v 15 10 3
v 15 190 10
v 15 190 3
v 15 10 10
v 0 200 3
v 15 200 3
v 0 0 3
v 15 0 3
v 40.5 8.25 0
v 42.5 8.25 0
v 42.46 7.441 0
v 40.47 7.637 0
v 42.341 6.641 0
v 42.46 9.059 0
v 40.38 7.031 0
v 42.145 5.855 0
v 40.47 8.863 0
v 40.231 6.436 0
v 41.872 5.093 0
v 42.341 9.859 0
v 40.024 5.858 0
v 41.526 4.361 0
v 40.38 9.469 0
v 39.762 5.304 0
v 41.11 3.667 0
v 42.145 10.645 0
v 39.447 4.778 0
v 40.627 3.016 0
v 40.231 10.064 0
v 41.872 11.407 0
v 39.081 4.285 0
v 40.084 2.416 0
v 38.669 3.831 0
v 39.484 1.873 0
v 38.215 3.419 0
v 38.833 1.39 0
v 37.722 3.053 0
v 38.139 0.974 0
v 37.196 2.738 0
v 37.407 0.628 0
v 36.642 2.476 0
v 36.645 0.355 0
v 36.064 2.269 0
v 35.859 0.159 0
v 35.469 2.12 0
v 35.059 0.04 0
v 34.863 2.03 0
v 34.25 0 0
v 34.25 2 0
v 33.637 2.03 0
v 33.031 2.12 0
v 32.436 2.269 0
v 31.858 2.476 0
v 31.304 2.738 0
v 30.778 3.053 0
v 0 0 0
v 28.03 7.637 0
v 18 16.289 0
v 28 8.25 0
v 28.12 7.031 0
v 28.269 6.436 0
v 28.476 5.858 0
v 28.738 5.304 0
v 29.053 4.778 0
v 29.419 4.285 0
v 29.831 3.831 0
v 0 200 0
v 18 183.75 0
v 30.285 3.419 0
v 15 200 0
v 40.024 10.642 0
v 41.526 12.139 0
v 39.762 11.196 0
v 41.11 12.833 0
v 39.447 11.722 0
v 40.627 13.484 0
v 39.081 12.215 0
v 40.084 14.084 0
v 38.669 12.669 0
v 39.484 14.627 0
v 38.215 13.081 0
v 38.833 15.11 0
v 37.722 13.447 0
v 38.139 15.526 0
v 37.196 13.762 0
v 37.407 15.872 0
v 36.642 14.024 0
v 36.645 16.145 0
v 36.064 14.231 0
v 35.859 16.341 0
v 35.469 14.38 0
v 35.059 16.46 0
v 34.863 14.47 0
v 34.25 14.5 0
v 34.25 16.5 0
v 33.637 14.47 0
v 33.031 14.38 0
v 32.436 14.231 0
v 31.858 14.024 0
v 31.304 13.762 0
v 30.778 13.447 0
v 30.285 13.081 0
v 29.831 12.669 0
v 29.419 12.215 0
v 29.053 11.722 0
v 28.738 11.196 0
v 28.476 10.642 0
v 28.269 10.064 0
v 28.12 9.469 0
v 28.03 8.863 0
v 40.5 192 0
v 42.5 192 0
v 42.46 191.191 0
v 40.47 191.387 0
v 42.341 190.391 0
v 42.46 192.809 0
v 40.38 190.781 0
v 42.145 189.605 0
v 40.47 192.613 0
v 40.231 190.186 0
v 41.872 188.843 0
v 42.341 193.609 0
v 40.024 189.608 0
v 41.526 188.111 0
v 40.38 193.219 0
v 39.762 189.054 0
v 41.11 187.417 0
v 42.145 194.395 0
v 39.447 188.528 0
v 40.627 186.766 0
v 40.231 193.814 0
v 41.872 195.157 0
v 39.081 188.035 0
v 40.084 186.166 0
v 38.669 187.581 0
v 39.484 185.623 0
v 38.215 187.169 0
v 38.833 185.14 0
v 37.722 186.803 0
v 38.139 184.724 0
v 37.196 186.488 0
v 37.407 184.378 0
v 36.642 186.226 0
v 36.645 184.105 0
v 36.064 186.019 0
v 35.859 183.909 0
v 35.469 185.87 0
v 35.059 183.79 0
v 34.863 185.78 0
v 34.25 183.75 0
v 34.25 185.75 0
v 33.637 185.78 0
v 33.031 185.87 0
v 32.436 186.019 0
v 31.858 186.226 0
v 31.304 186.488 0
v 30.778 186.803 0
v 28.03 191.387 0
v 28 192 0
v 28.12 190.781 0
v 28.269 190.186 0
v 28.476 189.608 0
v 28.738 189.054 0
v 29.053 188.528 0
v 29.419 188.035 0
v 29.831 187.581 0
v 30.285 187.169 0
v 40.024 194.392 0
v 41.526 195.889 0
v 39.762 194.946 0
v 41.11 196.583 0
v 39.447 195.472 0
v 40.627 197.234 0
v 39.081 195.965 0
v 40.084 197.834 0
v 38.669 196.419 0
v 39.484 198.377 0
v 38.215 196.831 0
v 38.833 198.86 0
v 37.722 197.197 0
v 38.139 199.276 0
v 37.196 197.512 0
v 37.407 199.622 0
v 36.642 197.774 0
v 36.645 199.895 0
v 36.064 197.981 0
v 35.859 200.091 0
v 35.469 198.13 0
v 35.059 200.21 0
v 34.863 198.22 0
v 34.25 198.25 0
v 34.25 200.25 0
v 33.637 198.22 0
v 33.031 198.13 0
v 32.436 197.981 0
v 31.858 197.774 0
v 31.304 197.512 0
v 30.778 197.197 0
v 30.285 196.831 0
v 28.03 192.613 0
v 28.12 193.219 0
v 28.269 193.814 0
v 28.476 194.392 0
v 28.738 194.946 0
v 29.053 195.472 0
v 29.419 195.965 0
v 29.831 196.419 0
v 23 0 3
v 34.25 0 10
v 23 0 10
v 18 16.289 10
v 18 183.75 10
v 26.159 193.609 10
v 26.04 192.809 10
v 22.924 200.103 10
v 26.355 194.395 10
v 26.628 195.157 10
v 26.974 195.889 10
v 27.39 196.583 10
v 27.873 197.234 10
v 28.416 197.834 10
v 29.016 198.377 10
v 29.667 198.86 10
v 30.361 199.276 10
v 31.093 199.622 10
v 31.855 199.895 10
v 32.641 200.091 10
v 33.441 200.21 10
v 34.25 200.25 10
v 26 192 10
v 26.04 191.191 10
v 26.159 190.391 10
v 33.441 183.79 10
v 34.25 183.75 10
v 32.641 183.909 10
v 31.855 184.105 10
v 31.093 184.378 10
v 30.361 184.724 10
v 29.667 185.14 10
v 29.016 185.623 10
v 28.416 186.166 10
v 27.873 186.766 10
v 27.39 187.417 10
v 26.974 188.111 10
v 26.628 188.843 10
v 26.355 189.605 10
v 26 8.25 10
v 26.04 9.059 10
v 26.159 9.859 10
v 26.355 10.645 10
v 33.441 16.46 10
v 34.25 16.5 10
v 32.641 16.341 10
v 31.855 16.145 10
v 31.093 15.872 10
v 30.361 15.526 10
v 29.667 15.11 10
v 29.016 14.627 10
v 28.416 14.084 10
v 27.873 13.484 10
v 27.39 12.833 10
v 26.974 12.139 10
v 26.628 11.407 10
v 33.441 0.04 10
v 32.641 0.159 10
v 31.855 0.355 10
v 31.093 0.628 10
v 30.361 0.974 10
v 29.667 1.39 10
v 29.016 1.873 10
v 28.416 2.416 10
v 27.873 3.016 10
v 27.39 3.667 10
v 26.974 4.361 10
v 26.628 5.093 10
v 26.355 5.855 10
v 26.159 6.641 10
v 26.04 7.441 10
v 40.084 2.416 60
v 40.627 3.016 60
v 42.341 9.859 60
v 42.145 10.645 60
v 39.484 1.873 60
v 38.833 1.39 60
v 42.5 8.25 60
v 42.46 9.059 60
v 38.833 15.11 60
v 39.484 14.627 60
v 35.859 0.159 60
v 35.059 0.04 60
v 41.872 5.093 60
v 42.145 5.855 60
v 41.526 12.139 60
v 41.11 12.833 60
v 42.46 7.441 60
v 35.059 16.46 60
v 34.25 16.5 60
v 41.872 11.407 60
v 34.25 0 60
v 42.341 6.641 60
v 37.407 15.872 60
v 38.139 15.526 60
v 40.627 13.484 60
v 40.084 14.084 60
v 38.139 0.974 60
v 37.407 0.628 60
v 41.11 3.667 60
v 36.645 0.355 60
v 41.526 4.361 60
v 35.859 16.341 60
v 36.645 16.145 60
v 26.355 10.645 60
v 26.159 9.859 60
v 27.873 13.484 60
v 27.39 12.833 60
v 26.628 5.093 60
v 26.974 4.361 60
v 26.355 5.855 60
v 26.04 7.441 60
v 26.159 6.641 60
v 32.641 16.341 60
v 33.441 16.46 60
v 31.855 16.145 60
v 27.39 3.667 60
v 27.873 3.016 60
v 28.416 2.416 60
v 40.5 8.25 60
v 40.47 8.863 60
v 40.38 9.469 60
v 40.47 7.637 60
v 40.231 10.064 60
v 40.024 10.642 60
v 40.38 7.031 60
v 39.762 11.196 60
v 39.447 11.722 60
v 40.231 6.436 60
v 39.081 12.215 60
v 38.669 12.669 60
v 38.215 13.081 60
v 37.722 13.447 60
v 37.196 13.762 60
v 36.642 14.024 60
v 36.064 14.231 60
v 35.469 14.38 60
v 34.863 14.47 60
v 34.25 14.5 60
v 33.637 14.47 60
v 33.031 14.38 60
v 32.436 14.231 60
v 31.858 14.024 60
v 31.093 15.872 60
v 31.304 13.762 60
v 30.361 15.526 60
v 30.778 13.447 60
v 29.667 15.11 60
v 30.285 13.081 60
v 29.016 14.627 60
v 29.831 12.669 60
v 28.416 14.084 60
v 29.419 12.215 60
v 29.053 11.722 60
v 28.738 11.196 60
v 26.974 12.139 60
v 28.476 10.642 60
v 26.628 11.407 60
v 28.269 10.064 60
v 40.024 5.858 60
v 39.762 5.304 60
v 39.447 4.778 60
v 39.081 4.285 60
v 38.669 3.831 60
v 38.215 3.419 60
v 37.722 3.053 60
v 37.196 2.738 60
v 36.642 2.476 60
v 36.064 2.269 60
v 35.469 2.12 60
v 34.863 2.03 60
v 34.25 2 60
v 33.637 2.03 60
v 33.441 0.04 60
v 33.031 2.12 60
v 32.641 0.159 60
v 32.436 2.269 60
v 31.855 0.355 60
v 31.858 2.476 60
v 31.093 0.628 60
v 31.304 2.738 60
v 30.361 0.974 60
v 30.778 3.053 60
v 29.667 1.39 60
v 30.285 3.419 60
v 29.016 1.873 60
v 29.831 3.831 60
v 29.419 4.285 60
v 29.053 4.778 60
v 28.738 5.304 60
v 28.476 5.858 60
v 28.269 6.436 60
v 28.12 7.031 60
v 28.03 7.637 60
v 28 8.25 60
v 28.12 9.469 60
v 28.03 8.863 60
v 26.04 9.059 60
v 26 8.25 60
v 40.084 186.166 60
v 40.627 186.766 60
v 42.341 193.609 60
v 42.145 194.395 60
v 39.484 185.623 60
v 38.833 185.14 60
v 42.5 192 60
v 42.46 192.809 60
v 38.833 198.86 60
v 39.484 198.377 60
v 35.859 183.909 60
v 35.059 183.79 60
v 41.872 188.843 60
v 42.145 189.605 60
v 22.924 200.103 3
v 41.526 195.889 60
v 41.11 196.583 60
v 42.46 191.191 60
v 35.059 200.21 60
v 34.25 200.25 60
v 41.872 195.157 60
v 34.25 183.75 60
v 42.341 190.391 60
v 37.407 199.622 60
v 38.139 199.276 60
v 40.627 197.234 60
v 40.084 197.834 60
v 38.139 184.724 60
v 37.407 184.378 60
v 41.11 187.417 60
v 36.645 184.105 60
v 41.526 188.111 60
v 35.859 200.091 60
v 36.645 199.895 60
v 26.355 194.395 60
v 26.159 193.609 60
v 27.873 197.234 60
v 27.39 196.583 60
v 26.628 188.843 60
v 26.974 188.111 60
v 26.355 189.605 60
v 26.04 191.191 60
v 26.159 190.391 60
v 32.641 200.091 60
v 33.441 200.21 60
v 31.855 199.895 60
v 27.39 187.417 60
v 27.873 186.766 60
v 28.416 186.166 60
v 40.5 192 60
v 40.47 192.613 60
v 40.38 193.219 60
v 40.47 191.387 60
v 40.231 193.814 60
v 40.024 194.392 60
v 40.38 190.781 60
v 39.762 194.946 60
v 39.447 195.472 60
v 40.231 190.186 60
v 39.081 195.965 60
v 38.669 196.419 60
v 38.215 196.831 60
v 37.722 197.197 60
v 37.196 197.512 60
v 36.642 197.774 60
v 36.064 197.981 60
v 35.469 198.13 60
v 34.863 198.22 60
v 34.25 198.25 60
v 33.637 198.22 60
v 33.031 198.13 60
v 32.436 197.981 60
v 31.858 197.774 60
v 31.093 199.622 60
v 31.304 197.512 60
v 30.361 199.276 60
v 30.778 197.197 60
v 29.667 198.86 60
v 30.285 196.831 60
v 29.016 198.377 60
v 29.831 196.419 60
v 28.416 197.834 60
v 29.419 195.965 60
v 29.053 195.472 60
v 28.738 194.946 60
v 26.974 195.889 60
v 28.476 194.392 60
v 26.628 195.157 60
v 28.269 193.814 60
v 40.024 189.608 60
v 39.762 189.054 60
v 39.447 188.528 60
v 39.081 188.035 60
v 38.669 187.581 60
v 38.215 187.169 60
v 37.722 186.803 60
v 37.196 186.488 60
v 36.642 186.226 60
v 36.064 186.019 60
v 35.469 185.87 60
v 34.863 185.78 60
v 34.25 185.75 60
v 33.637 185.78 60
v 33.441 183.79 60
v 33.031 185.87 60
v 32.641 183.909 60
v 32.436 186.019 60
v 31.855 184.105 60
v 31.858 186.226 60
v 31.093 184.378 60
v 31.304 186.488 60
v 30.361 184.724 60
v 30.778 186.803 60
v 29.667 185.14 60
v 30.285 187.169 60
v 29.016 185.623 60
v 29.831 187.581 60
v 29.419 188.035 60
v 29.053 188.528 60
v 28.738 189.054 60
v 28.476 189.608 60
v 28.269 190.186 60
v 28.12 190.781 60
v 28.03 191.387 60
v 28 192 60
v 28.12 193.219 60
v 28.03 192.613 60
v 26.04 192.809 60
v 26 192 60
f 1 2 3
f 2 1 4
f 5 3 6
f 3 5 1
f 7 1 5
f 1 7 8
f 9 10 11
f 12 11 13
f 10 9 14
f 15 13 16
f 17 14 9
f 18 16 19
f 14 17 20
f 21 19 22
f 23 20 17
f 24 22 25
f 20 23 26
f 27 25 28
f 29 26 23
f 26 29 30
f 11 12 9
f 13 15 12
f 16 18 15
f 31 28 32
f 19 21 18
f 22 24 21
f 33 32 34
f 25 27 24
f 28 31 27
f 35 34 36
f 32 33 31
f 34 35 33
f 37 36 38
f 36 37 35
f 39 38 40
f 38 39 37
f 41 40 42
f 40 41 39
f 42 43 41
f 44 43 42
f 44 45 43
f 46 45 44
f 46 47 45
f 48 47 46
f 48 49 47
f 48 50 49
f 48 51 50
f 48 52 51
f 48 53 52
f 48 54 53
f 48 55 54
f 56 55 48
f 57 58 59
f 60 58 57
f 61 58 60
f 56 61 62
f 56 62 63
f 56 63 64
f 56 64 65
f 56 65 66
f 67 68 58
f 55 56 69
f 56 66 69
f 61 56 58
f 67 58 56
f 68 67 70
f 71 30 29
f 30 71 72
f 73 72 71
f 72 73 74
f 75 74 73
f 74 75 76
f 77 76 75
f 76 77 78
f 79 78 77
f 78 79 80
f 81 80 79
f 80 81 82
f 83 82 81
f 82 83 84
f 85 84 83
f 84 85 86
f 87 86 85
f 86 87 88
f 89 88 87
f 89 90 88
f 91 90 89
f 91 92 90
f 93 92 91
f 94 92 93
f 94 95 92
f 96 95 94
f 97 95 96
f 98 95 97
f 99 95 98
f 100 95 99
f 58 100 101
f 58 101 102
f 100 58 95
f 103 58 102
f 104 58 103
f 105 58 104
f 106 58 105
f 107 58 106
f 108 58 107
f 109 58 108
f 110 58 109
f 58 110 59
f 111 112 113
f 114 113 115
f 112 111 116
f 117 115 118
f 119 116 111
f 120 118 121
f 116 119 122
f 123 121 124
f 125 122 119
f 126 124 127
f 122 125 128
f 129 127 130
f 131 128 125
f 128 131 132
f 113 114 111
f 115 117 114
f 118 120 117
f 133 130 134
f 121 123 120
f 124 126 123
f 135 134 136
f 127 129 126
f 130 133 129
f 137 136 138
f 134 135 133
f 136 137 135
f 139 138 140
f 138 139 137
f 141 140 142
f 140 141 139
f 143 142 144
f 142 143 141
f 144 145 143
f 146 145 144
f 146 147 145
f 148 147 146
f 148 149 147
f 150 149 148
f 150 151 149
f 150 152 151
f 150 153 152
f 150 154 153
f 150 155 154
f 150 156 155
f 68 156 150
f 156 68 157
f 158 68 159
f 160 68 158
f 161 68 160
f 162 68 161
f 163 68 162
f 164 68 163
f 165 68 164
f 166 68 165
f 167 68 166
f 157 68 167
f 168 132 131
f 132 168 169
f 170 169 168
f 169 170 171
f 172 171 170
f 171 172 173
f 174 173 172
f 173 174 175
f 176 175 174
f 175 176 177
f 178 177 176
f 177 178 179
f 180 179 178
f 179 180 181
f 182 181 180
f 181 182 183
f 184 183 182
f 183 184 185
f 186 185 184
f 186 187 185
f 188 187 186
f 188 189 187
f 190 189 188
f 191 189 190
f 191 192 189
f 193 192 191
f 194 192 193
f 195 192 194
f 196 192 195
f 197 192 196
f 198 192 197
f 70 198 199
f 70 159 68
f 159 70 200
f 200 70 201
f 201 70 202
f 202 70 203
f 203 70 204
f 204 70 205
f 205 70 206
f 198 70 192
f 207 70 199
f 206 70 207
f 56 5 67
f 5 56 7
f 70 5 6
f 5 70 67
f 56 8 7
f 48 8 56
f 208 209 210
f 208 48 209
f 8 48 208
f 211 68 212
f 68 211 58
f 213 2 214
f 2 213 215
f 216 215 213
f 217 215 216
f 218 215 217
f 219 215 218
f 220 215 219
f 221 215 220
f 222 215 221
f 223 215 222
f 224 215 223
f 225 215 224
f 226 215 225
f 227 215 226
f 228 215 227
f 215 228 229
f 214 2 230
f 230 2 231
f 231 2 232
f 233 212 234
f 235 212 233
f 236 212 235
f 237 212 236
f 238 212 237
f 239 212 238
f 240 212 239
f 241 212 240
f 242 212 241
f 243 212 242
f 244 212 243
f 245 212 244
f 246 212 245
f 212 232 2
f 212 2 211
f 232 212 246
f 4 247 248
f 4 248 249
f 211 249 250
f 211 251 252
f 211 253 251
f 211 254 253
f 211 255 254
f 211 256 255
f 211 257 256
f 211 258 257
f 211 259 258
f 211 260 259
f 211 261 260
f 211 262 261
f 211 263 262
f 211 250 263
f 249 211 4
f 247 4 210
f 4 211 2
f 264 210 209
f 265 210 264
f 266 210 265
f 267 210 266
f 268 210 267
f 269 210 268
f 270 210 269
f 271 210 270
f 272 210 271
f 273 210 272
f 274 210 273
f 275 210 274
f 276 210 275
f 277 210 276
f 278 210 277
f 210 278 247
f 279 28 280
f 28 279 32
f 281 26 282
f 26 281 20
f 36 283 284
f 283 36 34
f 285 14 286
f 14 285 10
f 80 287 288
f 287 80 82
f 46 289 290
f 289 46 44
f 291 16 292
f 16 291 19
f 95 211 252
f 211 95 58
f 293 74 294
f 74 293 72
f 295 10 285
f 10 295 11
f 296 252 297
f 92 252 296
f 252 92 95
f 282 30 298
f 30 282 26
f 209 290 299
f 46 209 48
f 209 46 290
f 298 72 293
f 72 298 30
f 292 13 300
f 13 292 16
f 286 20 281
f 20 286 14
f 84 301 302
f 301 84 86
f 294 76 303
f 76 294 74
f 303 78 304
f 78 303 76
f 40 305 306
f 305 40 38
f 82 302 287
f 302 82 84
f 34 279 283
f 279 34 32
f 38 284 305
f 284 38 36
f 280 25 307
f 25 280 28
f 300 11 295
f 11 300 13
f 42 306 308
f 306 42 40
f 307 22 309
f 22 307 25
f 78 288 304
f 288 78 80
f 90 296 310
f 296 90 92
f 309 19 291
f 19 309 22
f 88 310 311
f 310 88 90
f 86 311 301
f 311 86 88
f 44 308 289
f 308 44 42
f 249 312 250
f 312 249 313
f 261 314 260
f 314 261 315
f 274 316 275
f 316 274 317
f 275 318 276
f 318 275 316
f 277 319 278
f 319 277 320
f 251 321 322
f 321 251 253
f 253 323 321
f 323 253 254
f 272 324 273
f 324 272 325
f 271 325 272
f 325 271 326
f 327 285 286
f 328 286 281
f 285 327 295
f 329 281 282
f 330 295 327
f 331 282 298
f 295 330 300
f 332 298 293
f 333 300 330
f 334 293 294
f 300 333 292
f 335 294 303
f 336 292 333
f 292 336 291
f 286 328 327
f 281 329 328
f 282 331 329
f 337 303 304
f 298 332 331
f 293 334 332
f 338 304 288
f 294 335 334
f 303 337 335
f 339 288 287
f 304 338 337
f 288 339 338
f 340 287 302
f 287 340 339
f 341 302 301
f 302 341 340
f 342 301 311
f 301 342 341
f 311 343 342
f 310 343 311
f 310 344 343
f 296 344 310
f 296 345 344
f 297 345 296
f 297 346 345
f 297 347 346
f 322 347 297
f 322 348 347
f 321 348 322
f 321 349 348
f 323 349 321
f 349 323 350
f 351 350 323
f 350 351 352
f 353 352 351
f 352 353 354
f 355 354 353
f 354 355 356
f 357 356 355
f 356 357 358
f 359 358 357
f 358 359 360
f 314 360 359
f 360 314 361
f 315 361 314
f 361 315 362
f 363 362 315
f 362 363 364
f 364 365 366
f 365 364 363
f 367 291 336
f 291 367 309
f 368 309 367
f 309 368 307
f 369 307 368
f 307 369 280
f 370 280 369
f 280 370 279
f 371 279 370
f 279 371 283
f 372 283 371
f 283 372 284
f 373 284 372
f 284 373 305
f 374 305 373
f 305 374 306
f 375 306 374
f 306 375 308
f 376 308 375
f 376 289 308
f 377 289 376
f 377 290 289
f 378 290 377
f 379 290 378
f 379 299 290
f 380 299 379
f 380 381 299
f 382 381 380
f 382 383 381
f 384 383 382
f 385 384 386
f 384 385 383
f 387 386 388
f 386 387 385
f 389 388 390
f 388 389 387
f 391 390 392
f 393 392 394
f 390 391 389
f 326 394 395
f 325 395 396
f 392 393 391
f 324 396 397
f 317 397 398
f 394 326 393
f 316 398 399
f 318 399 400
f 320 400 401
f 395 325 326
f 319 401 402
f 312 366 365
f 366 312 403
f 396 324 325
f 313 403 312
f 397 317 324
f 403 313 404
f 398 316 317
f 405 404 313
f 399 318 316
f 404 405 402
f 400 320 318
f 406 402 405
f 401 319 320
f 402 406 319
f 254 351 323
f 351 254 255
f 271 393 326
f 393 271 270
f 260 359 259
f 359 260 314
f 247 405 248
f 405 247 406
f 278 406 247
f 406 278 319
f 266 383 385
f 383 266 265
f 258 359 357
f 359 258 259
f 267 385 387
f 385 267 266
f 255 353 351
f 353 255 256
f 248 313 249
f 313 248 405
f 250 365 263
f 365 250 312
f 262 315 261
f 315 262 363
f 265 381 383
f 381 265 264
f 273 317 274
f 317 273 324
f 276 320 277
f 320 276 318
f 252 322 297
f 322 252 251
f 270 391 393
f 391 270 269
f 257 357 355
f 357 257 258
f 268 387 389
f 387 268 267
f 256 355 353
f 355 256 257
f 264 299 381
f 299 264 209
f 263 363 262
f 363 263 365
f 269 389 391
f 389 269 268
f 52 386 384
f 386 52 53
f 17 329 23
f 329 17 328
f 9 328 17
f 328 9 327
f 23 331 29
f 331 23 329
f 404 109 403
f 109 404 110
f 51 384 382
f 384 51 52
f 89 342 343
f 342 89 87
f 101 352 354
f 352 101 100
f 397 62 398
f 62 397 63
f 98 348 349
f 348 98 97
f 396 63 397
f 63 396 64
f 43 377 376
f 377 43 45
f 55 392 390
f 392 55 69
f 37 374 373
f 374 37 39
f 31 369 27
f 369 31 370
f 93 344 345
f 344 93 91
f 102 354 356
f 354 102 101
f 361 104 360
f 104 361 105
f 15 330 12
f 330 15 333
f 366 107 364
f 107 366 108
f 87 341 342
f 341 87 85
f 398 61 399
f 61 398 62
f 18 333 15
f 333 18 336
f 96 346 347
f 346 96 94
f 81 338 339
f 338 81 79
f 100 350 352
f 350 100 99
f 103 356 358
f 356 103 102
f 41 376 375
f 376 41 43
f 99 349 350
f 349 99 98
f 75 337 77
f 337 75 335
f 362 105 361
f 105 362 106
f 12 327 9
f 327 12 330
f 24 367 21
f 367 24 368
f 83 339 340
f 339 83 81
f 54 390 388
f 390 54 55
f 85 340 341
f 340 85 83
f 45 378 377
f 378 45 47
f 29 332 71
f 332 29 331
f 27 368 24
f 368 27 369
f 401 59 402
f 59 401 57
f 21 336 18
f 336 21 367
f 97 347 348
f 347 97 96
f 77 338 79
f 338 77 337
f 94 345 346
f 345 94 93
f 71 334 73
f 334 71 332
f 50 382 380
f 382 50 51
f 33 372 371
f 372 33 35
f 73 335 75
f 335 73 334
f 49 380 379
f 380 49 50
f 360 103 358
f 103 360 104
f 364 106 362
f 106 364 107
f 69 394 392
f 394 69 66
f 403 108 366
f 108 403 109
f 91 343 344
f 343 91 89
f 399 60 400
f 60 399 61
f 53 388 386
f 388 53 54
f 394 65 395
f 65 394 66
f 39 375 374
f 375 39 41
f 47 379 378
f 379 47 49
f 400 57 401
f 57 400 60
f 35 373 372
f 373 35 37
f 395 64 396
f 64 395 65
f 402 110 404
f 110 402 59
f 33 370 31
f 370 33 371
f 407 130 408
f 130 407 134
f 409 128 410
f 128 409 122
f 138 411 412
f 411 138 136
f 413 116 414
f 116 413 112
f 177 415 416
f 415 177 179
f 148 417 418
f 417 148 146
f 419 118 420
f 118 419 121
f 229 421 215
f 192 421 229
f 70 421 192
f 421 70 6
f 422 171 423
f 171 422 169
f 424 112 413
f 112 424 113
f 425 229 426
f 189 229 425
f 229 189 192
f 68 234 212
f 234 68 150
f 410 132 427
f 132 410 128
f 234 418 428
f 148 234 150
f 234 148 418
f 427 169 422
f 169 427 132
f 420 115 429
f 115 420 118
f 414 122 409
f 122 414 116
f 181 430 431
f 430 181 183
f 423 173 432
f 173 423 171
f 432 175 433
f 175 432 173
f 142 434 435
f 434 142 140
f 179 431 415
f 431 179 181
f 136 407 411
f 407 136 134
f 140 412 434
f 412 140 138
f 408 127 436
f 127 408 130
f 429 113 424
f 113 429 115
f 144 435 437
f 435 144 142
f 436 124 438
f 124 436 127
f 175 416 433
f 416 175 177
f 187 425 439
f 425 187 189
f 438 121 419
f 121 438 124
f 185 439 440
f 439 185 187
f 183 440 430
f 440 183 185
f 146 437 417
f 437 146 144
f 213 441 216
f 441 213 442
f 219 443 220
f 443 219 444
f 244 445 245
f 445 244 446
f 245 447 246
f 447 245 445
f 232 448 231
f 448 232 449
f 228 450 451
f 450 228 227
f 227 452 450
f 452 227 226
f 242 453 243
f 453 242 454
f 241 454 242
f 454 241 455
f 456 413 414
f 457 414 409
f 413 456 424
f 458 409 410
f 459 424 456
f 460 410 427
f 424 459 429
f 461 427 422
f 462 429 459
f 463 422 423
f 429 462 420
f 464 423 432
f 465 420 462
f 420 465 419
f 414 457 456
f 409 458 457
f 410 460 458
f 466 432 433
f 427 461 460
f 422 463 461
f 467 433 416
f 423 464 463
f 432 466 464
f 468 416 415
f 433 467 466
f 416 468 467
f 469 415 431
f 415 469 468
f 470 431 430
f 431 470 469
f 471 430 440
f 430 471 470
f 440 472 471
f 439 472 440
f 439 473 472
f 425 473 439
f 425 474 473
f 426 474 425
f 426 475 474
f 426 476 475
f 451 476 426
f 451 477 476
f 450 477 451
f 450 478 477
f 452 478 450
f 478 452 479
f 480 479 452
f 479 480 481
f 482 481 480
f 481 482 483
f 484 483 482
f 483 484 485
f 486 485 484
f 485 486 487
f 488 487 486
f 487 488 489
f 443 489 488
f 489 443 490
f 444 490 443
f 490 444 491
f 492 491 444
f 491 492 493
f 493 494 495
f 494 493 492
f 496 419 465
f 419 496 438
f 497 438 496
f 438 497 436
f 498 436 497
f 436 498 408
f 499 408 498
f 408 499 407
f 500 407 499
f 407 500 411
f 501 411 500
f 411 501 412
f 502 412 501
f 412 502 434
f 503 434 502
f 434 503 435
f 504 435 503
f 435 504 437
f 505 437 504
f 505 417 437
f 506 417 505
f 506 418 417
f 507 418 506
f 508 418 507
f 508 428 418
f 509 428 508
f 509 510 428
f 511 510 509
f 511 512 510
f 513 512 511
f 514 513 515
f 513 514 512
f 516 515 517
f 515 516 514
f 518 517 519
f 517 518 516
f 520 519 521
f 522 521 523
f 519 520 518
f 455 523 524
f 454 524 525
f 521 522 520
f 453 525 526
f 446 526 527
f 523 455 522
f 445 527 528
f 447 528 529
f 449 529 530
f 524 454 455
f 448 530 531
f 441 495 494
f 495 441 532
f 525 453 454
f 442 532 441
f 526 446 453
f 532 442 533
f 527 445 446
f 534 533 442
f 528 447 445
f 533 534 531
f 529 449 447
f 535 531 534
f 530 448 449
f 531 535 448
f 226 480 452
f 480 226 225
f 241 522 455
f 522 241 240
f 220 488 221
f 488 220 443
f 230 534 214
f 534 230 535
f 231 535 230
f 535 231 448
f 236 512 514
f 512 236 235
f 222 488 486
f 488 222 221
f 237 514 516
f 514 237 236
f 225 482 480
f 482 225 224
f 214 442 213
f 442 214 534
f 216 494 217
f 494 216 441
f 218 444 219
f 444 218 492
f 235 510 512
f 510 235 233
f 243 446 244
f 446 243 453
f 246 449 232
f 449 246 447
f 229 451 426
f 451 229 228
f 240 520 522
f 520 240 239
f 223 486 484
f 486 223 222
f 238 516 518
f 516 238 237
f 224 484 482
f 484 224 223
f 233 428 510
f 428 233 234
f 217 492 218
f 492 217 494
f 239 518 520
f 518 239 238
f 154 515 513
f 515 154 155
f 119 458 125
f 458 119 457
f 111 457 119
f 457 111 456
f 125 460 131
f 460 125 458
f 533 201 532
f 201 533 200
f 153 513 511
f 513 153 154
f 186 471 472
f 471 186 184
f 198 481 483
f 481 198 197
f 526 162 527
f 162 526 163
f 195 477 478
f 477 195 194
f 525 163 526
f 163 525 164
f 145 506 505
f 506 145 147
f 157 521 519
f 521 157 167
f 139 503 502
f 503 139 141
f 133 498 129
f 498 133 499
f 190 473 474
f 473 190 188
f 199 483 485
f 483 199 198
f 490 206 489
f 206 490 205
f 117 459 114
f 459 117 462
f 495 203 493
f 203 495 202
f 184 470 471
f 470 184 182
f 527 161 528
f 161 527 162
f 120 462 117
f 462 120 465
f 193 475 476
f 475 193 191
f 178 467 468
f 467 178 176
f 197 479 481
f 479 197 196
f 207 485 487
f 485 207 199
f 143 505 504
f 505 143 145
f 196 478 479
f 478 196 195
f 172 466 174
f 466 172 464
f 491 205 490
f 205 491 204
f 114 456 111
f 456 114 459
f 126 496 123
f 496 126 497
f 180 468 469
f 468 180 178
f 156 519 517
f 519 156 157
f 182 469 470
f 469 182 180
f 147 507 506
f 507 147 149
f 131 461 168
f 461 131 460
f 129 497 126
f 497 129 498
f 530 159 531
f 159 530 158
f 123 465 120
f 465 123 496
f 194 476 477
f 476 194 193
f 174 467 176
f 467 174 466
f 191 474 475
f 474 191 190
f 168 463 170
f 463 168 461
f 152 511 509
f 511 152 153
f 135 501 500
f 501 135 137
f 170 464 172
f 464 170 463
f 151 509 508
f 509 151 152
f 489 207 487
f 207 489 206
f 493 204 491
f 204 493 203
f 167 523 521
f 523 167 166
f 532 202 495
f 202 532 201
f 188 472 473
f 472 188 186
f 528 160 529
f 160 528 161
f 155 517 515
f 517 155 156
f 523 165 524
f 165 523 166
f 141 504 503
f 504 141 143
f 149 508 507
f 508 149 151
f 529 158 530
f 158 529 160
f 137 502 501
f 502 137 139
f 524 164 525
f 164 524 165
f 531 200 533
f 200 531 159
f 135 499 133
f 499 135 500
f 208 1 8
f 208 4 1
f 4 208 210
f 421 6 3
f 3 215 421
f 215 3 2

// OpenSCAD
screw_mount = false; //Set true to add mount points, false for no mount points.
shelf_depth = 200;
shelf_heigth = 57;
support_tube_radius = 6.25;

lip_width = 15;
support_clearance = 10;

$fn= $preview ? 32 : 64;
module support_tube()
{
    difference(){
        union(){
            hull(){
                translate([0, 0, 0])
                    cube([3, support_tube_radius+10, 10], false);
                translate([3+support_tube_radius+support_clearance, support_tube_radius+2, 5])
                    cylinder(10, support_tube_radius+2, support_tube_radius+2, true);
            }
            translate([3+support_tube_radius+support_clearance, support_tube_radius+2, (shelf_heigth+3)/2])
                cylinder(shelf_heigth+3, support_tube_radius+2, support_tube_radius+2, true);
        }
    translate([3+support_tube_radius+support_clearance, support_tube_radius+2, (shelf_heigth+3)/2])
        cylinder(shelf_heigth+3, support_tube_radius, support_tube_radius, true);
    }
}

module mounting_ear()
{
    difference(){   
        hull(){
            cube([3, 10, 3], false);
            translate([5, 5, 1.5]) cylinder(3, 5, 5, true);
        }
        translate([5, 5, 1.5]) cylinder(3, 2, 2, true);
    }
}
difference(){
    union(){  
        union(){
            cube([lip_width, shelf_depth, 3], false);
            translate([lip_width, 0, 0]) cube([3, shelf_depth, 10], false);
        }
        translate([lip_width, 0, 0]) support_tube();
        translate([lip_width, shelf_depth-support_tube_radius-10, 0]) support_tube();

        if(screw_mount){
            translate([lip_width+3, 16, 0]) mounting_ear();
            translate([lip_width+3, shelf_depth-10-16, 0]) mounting_ear();
        }
    }
    //ramp cuts
    translate([lip_width,0,3])
        linear_extrude(10)
            polygon(points=[[0,0],[8,0],[0,10]]);
    translate([lip_width,0,3])
        linear_extrude(10)
                polygon(points=[[0,shelf_depth+0.1],[8,shelf_depth+0.2],[0,shelf_depth-10]]);
}
